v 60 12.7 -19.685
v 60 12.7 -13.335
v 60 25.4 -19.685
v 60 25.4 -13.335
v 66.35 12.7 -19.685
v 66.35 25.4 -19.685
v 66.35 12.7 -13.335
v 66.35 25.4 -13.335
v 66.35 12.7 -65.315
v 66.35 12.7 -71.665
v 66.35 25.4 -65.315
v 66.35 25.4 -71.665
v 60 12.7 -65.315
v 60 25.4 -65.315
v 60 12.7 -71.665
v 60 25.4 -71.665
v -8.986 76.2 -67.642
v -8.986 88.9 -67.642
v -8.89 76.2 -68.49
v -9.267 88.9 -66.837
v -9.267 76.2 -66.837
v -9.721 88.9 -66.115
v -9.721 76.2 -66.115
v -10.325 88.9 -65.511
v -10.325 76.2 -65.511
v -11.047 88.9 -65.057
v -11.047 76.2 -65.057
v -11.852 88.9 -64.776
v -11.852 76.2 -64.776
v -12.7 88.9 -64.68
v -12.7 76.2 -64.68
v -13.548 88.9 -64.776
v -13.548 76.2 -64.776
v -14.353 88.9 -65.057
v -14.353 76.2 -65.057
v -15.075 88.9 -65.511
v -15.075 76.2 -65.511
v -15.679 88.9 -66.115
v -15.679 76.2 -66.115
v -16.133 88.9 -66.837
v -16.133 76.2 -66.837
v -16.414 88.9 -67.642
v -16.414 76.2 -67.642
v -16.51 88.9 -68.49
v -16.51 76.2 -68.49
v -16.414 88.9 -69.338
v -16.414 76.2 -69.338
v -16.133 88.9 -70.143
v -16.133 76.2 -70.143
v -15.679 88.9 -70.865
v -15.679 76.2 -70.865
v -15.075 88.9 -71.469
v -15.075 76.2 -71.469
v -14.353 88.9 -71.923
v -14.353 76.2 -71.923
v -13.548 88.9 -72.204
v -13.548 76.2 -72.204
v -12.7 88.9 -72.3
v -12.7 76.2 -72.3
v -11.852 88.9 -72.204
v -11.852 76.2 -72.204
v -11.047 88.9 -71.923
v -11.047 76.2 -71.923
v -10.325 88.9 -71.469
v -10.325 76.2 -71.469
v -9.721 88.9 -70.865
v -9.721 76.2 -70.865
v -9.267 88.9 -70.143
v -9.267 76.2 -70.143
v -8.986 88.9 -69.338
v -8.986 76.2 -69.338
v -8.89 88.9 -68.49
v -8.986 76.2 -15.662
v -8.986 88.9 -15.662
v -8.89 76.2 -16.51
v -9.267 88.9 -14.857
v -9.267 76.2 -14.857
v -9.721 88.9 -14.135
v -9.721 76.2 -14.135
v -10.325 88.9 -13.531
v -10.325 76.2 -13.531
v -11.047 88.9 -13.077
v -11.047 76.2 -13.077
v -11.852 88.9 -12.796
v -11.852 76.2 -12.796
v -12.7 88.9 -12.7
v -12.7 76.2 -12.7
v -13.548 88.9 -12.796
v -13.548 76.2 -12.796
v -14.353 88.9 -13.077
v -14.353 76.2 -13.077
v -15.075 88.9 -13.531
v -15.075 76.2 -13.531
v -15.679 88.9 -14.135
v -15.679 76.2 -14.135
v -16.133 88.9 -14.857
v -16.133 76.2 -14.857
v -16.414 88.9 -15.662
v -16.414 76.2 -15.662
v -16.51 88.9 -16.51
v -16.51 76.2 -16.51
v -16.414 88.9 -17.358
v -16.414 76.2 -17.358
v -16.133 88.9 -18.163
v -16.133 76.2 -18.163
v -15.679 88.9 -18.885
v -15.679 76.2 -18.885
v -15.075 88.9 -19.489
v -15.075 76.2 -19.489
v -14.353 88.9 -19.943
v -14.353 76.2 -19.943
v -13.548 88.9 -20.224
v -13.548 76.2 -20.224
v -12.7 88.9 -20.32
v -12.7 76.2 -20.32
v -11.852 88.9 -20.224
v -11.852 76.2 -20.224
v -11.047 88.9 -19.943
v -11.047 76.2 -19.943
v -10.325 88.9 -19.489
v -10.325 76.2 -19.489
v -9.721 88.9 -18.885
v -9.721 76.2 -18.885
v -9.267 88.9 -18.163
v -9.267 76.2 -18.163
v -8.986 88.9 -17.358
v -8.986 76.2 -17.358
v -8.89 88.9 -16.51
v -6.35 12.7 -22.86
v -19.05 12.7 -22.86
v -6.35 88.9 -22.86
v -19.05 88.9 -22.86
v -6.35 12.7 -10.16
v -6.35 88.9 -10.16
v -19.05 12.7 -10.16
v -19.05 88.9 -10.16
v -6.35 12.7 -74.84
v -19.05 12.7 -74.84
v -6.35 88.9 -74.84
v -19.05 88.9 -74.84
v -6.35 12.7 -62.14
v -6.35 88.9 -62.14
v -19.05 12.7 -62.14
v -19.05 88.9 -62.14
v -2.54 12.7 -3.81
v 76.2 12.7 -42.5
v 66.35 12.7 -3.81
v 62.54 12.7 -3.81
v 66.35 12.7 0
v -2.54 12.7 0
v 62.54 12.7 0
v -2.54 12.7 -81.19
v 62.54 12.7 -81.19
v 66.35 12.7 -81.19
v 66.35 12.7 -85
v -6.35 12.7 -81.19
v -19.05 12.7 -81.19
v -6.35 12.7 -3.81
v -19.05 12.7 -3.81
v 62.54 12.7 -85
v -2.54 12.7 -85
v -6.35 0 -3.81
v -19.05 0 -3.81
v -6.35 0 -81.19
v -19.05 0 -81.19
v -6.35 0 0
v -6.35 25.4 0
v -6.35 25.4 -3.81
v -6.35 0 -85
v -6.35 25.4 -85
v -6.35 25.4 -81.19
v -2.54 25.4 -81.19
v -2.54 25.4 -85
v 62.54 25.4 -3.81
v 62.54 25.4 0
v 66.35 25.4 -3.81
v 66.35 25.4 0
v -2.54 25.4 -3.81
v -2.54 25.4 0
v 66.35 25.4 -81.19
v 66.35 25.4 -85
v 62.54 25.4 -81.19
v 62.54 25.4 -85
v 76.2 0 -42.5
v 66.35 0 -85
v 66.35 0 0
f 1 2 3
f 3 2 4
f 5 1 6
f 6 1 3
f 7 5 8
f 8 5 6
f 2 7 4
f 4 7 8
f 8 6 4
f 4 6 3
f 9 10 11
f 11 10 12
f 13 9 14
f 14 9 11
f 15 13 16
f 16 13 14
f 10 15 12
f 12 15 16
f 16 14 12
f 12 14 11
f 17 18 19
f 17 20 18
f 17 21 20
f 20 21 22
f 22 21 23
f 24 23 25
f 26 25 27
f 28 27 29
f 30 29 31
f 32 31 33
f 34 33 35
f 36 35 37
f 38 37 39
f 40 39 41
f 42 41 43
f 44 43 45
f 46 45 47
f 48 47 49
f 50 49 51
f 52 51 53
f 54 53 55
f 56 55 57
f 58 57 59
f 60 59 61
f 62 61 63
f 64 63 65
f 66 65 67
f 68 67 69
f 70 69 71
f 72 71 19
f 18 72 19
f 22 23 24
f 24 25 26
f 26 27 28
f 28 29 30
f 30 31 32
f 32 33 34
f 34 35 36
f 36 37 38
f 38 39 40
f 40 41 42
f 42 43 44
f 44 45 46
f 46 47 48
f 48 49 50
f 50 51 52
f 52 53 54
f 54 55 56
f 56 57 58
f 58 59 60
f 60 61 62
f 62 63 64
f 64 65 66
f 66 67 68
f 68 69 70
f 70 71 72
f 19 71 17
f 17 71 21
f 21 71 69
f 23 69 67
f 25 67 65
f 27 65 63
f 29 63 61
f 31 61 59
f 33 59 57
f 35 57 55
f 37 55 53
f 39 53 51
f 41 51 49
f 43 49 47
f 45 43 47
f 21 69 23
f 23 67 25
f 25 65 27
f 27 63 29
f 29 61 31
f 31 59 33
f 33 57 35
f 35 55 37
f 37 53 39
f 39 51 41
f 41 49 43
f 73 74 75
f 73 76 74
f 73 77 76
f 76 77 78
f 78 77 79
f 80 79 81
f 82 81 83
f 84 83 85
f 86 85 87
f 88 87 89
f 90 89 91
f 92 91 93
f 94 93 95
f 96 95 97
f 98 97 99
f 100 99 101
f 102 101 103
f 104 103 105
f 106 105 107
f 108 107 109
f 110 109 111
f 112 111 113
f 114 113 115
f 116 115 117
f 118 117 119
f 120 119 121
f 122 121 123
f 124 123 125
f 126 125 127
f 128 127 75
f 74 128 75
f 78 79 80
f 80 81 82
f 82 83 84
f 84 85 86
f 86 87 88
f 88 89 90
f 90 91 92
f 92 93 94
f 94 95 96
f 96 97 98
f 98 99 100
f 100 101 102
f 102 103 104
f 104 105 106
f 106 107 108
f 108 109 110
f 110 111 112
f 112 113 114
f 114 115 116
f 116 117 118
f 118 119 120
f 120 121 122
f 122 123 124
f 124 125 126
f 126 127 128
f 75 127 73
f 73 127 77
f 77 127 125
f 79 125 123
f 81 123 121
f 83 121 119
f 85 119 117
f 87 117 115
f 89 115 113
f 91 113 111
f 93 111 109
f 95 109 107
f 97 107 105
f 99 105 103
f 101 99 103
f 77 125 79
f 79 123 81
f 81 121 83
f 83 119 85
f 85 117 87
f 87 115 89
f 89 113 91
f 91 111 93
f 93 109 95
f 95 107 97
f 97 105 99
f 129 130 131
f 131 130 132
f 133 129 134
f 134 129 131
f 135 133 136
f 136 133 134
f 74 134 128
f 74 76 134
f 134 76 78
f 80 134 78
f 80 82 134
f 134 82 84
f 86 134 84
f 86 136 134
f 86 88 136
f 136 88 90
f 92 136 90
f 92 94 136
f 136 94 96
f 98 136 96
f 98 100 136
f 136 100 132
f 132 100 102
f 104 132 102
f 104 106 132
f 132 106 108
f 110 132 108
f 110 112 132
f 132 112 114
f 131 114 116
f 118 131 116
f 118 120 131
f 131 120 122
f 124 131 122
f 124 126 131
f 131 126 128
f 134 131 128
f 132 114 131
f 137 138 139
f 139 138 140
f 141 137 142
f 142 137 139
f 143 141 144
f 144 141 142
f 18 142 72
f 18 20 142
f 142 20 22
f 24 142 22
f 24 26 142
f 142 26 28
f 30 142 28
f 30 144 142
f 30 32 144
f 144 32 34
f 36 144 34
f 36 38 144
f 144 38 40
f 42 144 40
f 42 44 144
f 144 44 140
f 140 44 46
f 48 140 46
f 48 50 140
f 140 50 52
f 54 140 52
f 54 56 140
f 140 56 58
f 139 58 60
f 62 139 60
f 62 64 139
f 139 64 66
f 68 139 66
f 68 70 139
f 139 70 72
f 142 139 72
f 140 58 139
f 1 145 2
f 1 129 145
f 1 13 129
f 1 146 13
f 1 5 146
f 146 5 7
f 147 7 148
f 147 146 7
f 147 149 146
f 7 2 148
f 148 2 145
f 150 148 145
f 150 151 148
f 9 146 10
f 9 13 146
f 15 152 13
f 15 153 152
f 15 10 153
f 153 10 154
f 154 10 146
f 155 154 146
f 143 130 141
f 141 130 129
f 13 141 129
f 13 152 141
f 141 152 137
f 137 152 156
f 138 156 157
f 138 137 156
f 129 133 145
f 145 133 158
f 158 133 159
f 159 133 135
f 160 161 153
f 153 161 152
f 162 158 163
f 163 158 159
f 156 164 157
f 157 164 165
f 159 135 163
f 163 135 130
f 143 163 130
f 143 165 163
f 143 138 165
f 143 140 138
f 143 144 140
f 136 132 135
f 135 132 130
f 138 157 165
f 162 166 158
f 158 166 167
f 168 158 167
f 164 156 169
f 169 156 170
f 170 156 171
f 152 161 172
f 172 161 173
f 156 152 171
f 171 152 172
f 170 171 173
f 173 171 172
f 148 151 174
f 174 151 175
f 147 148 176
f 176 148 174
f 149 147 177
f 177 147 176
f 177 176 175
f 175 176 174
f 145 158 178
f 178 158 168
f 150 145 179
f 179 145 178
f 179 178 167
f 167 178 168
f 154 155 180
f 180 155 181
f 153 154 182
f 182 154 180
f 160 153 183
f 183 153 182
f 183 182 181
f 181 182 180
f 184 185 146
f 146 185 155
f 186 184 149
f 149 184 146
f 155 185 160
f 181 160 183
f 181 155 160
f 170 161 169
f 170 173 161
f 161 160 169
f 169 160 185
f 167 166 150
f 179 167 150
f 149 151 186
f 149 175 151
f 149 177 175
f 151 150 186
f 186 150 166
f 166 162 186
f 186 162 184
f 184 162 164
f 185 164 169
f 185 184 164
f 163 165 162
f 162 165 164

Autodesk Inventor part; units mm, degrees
ref_plane "YZ Plane" through (0, 0, 0) normal (1, 0, 0) x (0, 1, 0)
ref_plane "XZ Plane" through (0, 0, 0) normal (0, 1, 0) x (-1, 0, 0)
ref_plane "XY Plane" through (0, 0, 0) normal (0, 0, 1) x (1, 0, 0)
sketch "Sketch1" plane through (0, 0, 0) normal (0, 1, 0) x (-1, 0, 0)
  line L0 (0, 0) -> (0, -85)
  line L1 (0, 0) -> (-60, 0)
  line L2 (-60, 0) -> (-60, -85)
  line L3 (-60, -85) -> (0, -85)
  line L4 (0, -42.5) -> (-76.2, -42.5)
  line L5 (-60, 0) -> (-66.35, 0)
  line L6 (-66.35, 0) -> (-66.35, -6.35)
  line L7 (-66.35, -6.35) -> (-60, -6.35)
  line L8 (-60, -6.35) -> (-60, 0)
  line L9 (0, 0) -> (6.35, 0)
  line L10 (6.35, 0) -> (6.35, -85)
  line L11 (6.35, -85) -> (0, -85)
  line L12 (-60, -85) -> (-66.35, -85)
  line L13 (-66.35, 0) -> (-76.2, -42.5)
  line L14 (-76.2, -42.5) -> (-66.35, -85)
  dimension "d0" = 85
  dimension "d1" = 60
  dimension "d2" = 76.2
  dimension "d3" = 6.35
  dimension "d4" = 6.35
  dimension "d5" = 6.35
  dimension "d6" = 6.35
extrude "Extrusion1" add sketch "Sketch1" along normal blind 12.7
sketch "Sketch2" plane through (0, 12.7, 0) normal (0, 1, 0) x (1, 0, 0)
  line L0 (-6.35, 0) -> (66.35, 0) projected
  line L1 (-6.35, 0) -> (-2.54, 0)
  line L2 (-2.54, 0) -> (-2.54, 3.81)
  line L3 (-2.54, 3.81) -> (-6.35, 3.81)
  line L4 (-6.35, 3.81) -> (-6.35, 0)
  line L5 (66.35, 85) -> (-6.35, 85) projected
  line L6 (-6.35, 85) -> (-2.54, 85)
  line L7 (-2.54, 85) -> (-2.54, 81.19)
  line L8 (-2.54, 81.19) -> (-6.35, 81.19)
  line L9 (-6.35, 81.19) -> (-6.35, 85)
  line L10 (66.35, 0) -> (62.54, 0)
  line L11 (62.54, 0) -> (62.54, 3.81)
  line L12 (62.54, 3.81) -> (66.35, 3.81)
  line L13 (66.35, 3.81) -> (66.35, 0)
  line L14 (66.35, 85) -> (62.54, 85)
  line L15 (62.54, 85) -> (62.54, 81.19)
  line L16 (62.54, 81.19) -> (66.35, 81.19)
  line L17 (66.35, 81.19) -> (66.35, 85)
  point P0 (0, 0)
  dimension "d9" = 3.81
  dimension "d10" = 3.81
  dimension "d11" = 3.81
  dimension "d12" = 3.81
  dimension "d13" = 3.81
  dimension "d14" = 3.81
  dimension "d15" = 3.81
  dimension "d16" = 3.81
extrude "Extrusion2" add sketch "Sketch2" along normal blind 12.7
sketch "Sketch3" plane through (-6.35, 0, -85) normal (-1, 0, 0) x (0, 0, 1)
  line L0 (3.81, 12.7) -> (81.19, 12.7) projected
  line L1 (42.5, 0) -> (0, 0) projected
  line L2 (81.19, 12.7) -> (3.81, 12.7)
  line L3 (3.81, 12.7) -> (3.81, 0)
  line L4 (3.81, 0) -> (81.19, 0)
  line L5 (81.19, 0) -> (81.19, 12.7)
  point P0 (85, 0)
extrude "Extrusion3" add sketch "Sketch3" along normal blind 12.7
sketch "Sketch4" plane through (0, 12.7, 0) normal (0, 1, 0) x (1, 0, 0)
  line L0 (-19.05, 3.81) -> (-19.05, 10.16)
  line L1 (-19.05, 81.19) -> (-19.05, 3.81) projected
  line L2 (-19.05, 10.16) -> (-6.35, 10.16)
  line L3 (-6.35, 10.16) -> (-6.35, 22.86)
  line L4 (-6.35, 22.86) -> (-19.05, 22.86)
  line L5 (-19.05, 22.86) -> (-19.05, 10.16)
  line L6 (-6.35, 81.19) -> (-19.05, 81.19) projected
  line L7 (-19.05, 81.19) -> (-19.05, 74.84)
  line L8 (-19.05, 74.84) -> (-6.35, 74.84)
  line L9 (-6.35, 74.84) -> (-6.35, 62.14)
  line L10 (-6.35, 62.14) -> (-19.05, 62.14)
  line L11 (-19.05, 62.14) -> (-19.05, 74.84)
  dimension "d39" = 6.35
  dimension "d40" = 12.7
  dimension "d41" = 12.7
  dimension "d42" = 6.35
  dimension "d43" = 12.7
  dimension "d44" = 12.7
extrude "Extrusion4" add sketch "Sketch4" along normal blind 76.2
sketch "Sketch5" plane through (0, 88.9, 0) normal (0, 1, 0) x (1, 0, 0)
  line L0 (-2.54, 3.81) -> (-6.35, 3.81) projected
  line L1 (-19.05, 74.84) -> (-19.05, 81.19) projected
  line L2 (-19.05, 74.84) -> (-19.05, 68.49)
  line L3 (-19.05, 81.19) -> (-19.05, 3.81) projected
  line L4 (-19.05, 68.49) -> (-12.7, 68.49)
  circle A0 centre (-12.7, 68.49) radius 3.81
  line L5 (-19.05, 22.86) -> (-19.05, 62.14) projected
  line L6 (-19.05, 22.86) -> (-19.05, 16.51)
  line L7 (-19.05, 16.51) -> (-12.7, 16.51)
  circle A1 centre (-12.7, 16.51) radius 3.81
  point P0 (0, 0)
  point P1 (-6.35, 68.49)
  dimension "d45" = 6.35
  dimension "d46" = 6.35
  dimension "d47" = 7.62
  dimension "d48" = 6.35
  dimension "d49" = 6.35
  dimension "d50" = 7.62
extrude "Extrusion5" cut sketch "Sketch5" against normal blind 12.7
sketch "Sketch6" plane through (0, 12.7, 0) normal (0, 1, 0) x (1, 0, 0)
  line L0 (62.54, 3.81) -> (66.35, 3.81) projected
  line L1 (66.35, 3.81) -> (66.35, 13.335)
  line L2 (66.35, 81.19) -> (62.54, 81.19) projected
  line L3 (66.35, 81.19) -> (66.35, 71.665)
  line L4 (66.35, 13.335) -> (60, 13.335)
  line L5 (60, 13.335) -> (60, 19.685)
  line L6 (60, 19.685) -> (66.35, 19.685)
  line L7 (66.35, 19.685) -> (66.35, 13.335)
  line L8 (66.35, 71.665) -> (60, 71.665)
  line L9 (60, 71.665) -> (60, 65.315)
  line L10 (60, 65.315) -> (66.35, 65.315)
  line L11 (66.35, 65.315) -> (66.35, 71.665)
  point P0 (0, 0)
  dimension "d31" = 9.525
  dimension "d32" = 9.525
  dimension "d33" = 6.35
  dimension "d34" = 6.35
  dimension "d35" = 6.35
  dimension "d36" = 6.35
extrude "Extrusion6" add sketch "Sketch6" along normal blind 12.7
properties part number "Maglev_Stand"
